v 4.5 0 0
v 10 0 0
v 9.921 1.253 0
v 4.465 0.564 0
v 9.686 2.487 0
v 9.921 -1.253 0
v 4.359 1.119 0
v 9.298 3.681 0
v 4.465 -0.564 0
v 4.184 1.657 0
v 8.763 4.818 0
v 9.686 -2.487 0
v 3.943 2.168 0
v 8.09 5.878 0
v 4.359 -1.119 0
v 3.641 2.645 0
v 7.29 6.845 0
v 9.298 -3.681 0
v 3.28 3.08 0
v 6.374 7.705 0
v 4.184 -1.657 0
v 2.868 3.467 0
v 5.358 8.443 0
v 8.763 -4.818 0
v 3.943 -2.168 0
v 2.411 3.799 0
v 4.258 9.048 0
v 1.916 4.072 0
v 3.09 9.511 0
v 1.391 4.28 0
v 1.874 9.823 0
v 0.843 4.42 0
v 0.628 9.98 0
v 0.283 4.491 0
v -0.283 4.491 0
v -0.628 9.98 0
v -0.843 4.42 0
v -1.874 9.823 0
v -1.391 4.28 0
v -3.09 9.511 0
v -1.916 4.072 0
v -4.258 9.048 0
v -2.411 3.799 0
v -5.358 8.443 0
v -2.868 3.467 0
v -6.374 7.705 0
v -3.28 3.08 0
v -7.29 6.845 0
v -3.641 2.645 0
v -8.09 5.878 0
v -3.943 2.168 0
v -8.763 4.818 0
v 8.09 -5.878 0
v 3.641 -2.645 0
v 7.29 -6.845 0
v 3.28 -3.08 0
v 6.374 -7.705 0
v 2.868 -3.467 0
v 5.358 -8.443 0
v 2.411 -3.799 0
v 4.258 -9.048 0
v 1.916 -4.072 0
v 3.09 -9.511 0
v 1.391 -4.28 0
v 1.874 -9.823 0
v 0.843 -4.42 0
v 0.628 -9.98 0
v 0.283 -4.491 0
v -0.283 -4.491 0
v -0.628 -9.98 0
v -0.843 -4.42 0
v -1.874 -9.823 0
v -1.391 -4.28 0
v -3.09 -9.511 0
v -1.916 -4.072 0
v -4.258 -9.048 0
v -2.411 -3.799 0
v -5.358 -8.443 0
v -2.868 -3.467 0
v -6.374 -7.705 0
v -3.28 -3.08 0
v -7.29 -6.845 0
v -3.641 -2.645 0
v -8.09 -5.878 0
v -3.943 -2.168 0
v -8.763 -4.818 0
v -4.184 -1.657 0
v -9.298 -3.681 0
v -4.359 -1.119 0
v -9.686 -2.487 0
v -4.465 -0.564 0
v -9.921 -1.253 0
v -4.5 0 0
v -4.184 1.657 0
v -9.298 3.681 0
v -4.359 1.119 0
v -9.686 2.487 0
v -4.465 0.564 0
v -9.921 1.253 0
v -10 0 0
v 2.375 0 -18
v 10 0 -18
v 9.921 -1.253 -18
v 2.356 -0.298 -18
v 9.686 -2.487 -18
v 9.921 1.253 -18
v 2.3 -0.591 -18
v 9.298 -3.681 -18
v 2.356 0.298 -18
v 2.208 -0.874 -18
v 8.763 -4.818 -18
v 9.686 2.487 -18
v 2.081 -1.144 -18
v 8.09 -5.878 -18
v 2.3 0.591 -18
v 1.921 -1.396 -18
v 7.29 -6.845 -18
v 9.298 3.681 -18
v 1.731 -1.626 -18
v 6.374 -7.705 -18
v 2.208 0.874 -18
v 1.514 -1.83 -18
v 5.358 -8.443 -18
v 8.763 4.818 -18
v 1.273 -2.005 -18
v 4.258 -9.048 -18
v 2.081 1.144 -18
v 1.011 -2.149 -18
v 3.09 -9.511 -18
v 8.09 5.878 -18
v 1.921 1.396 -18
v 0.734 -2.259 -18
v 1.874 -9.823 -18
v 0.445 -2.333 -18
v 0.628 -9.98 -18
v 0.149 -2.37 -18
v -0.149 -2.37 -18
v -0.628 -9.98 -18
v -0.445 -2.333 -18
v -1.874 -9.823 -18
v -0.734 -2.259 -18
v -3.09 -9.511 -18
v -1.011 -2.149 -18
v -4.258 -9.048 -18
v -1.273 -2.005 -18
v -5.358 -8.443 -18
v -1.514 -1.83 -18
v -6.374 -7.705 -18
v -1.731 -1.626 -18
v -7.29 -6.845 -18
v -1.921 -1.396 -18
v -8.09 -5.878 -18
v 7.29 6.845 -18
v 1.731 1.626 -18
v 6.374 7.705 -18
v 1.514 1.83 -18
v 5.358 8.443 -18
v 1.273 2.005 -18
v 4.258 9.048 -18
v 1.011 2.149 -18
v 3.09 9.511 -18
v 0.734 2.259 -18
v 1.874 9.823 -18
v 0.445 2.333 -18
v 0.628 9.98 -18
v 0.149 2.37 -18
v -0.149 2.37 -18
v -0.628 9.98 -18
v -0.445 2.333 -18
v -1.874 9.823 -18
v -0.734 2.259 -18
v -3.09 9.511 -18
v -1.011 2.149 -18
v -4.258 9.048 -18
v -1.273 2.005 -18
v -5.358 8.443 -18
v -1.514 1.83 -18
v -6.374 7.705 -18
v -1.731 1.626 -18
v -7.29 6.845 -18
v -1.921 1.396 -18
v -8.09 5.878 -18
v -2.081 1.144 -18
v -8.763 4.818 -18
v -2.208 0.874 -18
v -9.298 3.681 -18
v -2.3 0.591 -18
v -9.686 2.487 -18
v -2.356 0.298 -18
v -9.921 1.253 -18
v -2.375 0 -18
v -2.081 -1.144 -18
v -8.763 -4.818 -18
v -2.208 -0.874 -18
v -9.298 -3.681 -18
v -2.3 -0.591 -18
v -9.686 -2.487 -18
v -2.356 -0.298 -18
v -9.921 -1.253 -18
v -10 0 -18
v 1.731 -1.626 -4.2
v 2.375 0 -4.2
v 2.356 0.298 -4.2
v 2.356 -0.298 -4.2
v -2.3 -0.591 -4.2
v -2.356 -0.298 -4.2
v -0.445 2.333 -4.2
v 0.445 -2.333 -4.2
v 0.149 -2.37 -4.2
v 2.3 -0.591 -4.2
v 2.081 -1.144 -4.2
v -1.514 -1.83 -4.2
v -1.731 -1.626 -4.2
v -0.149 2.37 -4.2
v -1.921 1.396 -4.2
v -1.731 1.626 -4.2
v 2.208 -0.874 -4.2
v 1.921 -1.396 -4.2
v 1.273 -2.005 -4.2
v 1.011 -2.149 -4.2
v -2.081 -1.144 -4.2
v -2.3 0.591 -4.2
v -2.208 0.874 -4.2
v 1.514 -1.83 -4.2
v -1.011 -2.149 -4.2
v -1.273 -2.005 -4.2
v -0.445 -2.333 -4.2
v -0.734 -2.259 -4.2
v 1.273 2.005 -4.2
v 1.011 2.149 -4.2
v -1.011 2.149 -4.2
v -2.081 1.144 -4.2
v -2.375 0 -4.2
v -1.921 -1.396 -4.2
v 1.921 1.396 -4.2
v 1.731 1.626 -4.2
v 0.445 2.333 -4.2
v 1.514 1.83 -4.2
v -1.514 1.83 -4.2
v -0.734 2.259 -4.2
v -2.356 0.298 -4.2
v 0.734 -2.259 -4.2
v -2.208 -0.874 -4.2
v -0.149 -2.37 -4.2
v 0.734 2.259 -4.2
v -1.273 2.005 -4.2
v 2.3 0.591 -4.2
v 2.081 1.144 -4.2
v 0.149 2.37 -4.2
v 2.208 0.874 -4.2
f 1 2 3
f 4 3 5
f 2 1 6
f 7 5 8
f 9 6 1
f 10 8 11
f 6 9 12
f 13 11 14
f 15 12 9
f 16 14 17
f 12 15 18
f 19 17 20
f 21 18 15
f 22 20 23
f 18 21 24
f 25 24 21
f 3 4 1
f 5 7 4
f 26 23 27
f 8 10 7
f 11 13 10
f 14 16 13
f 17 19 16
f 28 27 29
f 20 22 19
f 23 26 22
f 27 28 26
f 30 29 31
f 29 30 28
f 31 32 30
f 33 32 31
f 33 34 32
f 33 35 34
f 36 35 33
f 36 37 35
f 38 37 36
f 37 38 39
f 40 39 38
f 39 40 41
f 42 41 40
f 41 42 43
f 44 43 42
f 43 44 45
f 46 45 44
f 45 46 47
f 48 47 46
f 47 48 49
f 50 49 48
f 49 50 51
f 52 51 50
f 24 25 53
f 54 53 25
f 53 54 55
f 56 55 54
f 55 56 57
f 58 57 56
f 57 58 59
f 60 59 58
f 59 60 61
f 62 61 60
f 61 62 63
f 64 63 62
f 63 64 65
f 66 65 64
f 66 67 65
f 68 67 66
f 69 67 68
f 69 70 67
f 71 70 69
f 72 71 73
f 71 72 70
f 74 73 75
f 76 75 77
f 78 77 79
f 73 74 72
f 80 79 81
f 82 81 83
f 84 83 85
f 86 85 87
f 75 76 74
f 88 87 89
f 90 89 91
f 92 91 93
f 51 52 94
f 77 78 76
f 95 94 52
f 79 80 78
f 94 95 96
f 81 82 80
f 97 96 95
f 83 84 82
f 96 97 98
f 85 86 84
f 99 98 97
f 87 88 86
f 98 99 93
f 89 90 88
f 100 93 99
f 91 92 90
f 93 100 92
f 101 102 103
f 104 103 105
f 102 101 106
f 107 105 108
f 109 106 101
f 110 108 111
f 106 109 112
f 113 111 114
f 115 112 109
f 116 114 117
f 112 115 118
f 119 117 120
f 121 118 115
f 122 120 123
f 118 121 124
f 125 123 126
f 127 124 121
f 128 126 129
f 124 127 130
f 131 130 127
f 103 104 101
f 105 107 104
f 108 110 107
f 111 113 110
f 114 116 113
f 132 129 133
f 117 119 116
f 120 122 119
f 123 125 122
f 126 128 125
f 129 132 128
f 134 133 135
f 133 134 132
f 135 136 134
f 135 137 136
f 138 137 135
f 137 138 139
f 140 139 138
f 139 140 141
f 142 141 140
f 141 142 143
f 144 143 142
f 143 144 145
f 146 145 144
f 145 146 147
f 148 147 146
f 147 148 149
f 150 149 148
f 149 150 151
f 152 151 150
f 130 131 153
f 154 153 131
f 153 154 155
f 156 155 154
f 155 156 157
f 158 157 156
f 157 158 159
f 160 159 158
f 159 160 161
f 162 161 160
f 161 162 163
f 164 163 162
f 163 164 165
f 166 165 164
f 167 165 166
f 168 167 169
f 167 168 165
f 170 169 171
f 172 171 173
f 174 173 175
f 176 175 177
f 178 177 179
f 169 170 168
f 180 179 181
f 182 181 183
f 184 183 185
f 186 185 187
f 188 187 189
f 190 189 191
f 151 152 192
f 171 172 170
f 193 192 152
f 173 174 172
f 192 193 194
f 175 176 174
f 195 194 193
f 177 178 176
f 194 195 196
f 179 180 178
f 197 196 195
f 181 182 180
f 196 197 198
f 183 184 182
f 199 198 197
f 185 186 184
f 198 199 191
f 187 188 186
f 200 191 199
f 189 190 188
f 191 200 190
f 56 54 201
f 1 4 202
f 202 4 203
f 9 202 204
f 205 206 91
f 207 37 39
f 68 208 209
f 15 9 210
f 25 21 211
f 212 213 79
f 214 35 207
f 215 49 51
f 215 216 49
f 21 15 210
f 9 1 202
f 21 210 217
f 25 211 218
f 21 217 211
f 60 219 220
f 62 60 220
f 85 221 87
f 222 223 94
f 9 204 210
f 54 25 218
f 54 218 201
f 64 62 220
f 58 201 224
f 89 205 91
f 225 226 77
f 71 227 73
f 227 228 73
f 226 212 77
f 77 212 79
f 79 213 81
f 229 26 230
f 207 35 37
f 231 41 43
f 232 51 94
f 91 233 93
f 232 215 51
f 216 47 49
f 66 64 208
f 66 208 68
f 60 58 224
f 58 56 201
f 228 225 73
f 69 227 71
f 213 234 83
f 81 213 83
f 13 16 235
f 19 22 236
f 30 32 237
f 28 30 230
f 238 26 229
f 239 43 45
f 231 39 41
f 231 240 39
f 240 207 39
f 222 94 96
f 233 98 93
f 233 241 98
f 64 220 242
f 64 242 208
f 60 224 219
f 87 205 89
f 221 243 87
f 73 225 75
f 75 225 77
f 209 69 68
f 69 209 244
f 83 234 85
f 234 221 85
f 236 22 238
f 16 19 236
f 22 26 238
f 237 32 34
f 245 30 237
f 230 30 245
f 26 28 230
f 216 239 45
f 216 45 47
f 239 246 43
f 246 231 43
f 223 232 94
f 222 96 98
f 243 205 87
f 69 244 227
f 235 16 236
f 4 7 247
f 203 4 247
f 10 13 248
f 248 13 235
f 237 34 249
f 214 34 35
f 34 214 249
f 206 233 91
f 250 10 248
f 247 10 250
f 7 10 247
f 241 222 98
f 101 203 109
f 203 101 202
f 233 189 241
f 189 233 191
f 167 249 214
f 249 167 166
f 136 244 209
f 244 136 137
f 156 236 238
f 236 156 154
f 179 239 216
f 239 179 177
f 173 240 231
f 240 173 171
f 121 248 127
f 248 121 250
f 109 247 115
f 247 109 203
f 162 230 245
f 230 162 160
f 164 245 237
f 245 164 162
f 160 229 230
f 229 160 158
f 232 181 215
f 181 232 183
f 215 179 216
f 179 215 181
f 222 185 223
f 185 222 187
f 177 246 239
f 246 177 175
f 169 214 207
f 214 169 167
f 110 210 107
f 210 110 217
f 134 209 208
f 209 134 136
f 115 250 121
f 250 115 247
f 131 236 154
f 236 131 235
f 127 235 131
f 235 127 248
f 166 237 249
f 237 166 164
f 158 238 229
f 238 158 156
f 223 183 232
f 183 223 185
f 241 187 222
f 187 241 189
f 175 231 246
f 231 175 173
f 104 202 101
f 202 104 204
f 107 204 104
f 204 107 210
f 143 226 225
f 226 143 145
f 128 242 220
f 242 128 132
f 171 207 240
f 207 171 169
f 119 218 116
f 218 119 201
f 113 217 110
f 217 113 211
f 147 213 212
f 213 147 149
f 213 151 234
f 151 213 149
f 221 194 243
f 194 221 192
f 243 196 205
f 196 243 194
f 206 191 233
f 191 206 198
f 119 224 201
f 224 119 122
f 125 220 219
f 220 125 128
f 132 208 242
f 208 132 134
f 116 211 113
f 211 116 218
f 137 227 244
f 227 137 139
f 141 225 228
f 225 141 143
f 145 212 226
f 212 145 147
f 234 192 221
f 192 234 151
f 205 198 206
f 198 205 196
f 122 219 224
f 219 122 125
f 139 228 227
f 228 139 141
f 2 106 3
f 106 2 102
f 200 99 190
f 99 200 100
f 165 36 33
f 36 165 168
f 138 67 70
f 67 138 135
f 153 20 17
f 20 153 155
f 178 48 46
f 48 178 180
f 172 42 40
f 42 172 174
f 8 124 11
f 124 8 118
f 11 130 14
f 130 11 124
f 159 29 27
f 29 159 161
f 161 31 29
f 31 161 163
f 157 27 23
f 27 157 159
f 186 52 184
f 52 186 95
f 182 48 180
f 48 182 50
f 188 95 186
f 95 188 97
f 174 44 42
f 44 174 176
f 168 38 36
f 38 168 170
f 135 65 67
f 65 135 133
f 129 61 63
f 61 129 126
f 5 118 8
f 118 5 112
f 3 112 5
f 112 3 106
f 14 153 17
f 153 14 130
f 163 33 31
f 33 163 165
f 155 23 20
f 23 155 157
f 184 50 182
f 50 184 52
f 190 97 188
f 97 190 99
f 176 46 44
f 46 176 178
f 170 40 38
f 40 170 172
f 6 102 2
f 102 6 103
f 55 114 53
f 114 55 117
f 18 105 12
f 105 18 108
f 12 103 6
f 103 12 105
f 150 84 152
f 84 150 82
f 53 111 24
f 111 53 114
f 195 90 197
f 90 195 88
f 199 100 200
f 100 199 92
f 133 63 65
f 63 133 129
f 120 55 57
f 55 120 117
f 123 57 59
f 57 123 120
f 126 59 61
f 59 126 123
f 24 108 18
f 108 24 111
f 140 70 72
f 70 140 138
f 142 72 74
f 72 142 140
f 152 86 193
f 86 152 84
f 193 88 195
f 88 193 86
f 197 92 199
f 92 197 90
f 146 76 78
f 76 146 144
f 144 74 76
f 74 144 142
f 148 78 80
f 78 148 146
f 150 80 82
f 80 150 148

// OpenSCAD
$fn = 50;


difference() {
	union() {
		translate(v = [0, 0, -18.0000000000]) {
			cylinder(h = 18, r = 10.0000000000);
		}
		cylinder(h = 0, r = 13.0000000000);
	}
	union() {
		translate(v = [0, 0, 0]) {
			rotate(a = [0, 0, 0]) {
				difference() {
					union() {
						#translate(v = [0, 0, -18.0000000000]) {
							cylinder(h = 18, r = 2.2500000000);
						}
						#translate(v = [0, 0, -4.2000000000]) {
							cylinder(h = 4.2000000000, r = 10.0000000000, r1 = 2.3750000000, r2 = 4.5000000000);
						}
						#translate(v = [0, 0, -18.0000000000]) {
							cylinder(h = 18, r = 2.3750000000);
						}
						#translate(v = [0, 0, -18.0000000000]) {
							cylinder(h = 18, r = 2.2500000000);
						}
					}
					union();
				}
			}
		}
	}
}
